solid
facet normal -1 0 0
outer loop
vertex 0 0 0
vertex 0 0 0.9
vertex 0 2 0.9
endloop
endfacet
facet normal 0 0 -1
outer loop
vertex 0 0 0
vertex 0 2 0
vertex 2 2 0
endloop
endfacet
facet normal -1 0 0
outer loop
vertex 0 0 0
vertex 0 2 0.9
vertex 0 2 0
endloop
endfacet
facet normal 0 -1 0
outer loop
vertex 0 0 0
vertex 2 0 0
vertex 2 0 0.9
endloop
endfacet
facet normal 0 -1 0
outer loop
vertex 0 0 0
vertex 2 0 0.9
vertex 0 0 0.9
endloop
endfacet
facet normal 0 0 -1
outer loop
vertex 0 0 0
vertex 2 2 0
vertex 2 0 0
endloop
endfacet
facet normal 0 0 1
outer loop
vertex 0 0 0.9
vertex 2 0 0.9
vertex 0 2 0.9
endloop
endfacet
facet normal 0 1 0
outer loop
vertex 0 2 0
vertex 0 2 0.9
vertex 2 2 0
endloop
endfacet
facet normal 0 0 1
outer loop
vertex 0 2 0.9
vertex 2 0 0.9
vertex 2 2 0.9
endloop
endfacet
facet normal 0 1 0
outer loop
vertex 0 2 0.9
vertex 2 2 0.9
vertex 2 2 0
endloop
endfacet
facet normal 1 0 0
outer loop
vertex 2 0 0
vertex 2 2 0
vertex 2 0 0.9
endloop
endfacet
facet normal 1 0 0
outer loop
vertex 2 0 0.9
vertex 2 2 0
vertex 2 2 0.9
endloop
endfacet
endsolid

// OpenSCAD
/* Warning, this is a very basic generator with a lot of approximation 
input data : [VDFN, H2A, 2x2x0.9mm, 8, , C, C04-01247C]
generated by com.zoubworld.electronics.cad.model3d.Basic
Date : Sun Feb 15 10:50:49 CET 2026
*/

//body
color("black")
translate([0,0,0])
cube([2.0,2.0,0.9], center=false);
